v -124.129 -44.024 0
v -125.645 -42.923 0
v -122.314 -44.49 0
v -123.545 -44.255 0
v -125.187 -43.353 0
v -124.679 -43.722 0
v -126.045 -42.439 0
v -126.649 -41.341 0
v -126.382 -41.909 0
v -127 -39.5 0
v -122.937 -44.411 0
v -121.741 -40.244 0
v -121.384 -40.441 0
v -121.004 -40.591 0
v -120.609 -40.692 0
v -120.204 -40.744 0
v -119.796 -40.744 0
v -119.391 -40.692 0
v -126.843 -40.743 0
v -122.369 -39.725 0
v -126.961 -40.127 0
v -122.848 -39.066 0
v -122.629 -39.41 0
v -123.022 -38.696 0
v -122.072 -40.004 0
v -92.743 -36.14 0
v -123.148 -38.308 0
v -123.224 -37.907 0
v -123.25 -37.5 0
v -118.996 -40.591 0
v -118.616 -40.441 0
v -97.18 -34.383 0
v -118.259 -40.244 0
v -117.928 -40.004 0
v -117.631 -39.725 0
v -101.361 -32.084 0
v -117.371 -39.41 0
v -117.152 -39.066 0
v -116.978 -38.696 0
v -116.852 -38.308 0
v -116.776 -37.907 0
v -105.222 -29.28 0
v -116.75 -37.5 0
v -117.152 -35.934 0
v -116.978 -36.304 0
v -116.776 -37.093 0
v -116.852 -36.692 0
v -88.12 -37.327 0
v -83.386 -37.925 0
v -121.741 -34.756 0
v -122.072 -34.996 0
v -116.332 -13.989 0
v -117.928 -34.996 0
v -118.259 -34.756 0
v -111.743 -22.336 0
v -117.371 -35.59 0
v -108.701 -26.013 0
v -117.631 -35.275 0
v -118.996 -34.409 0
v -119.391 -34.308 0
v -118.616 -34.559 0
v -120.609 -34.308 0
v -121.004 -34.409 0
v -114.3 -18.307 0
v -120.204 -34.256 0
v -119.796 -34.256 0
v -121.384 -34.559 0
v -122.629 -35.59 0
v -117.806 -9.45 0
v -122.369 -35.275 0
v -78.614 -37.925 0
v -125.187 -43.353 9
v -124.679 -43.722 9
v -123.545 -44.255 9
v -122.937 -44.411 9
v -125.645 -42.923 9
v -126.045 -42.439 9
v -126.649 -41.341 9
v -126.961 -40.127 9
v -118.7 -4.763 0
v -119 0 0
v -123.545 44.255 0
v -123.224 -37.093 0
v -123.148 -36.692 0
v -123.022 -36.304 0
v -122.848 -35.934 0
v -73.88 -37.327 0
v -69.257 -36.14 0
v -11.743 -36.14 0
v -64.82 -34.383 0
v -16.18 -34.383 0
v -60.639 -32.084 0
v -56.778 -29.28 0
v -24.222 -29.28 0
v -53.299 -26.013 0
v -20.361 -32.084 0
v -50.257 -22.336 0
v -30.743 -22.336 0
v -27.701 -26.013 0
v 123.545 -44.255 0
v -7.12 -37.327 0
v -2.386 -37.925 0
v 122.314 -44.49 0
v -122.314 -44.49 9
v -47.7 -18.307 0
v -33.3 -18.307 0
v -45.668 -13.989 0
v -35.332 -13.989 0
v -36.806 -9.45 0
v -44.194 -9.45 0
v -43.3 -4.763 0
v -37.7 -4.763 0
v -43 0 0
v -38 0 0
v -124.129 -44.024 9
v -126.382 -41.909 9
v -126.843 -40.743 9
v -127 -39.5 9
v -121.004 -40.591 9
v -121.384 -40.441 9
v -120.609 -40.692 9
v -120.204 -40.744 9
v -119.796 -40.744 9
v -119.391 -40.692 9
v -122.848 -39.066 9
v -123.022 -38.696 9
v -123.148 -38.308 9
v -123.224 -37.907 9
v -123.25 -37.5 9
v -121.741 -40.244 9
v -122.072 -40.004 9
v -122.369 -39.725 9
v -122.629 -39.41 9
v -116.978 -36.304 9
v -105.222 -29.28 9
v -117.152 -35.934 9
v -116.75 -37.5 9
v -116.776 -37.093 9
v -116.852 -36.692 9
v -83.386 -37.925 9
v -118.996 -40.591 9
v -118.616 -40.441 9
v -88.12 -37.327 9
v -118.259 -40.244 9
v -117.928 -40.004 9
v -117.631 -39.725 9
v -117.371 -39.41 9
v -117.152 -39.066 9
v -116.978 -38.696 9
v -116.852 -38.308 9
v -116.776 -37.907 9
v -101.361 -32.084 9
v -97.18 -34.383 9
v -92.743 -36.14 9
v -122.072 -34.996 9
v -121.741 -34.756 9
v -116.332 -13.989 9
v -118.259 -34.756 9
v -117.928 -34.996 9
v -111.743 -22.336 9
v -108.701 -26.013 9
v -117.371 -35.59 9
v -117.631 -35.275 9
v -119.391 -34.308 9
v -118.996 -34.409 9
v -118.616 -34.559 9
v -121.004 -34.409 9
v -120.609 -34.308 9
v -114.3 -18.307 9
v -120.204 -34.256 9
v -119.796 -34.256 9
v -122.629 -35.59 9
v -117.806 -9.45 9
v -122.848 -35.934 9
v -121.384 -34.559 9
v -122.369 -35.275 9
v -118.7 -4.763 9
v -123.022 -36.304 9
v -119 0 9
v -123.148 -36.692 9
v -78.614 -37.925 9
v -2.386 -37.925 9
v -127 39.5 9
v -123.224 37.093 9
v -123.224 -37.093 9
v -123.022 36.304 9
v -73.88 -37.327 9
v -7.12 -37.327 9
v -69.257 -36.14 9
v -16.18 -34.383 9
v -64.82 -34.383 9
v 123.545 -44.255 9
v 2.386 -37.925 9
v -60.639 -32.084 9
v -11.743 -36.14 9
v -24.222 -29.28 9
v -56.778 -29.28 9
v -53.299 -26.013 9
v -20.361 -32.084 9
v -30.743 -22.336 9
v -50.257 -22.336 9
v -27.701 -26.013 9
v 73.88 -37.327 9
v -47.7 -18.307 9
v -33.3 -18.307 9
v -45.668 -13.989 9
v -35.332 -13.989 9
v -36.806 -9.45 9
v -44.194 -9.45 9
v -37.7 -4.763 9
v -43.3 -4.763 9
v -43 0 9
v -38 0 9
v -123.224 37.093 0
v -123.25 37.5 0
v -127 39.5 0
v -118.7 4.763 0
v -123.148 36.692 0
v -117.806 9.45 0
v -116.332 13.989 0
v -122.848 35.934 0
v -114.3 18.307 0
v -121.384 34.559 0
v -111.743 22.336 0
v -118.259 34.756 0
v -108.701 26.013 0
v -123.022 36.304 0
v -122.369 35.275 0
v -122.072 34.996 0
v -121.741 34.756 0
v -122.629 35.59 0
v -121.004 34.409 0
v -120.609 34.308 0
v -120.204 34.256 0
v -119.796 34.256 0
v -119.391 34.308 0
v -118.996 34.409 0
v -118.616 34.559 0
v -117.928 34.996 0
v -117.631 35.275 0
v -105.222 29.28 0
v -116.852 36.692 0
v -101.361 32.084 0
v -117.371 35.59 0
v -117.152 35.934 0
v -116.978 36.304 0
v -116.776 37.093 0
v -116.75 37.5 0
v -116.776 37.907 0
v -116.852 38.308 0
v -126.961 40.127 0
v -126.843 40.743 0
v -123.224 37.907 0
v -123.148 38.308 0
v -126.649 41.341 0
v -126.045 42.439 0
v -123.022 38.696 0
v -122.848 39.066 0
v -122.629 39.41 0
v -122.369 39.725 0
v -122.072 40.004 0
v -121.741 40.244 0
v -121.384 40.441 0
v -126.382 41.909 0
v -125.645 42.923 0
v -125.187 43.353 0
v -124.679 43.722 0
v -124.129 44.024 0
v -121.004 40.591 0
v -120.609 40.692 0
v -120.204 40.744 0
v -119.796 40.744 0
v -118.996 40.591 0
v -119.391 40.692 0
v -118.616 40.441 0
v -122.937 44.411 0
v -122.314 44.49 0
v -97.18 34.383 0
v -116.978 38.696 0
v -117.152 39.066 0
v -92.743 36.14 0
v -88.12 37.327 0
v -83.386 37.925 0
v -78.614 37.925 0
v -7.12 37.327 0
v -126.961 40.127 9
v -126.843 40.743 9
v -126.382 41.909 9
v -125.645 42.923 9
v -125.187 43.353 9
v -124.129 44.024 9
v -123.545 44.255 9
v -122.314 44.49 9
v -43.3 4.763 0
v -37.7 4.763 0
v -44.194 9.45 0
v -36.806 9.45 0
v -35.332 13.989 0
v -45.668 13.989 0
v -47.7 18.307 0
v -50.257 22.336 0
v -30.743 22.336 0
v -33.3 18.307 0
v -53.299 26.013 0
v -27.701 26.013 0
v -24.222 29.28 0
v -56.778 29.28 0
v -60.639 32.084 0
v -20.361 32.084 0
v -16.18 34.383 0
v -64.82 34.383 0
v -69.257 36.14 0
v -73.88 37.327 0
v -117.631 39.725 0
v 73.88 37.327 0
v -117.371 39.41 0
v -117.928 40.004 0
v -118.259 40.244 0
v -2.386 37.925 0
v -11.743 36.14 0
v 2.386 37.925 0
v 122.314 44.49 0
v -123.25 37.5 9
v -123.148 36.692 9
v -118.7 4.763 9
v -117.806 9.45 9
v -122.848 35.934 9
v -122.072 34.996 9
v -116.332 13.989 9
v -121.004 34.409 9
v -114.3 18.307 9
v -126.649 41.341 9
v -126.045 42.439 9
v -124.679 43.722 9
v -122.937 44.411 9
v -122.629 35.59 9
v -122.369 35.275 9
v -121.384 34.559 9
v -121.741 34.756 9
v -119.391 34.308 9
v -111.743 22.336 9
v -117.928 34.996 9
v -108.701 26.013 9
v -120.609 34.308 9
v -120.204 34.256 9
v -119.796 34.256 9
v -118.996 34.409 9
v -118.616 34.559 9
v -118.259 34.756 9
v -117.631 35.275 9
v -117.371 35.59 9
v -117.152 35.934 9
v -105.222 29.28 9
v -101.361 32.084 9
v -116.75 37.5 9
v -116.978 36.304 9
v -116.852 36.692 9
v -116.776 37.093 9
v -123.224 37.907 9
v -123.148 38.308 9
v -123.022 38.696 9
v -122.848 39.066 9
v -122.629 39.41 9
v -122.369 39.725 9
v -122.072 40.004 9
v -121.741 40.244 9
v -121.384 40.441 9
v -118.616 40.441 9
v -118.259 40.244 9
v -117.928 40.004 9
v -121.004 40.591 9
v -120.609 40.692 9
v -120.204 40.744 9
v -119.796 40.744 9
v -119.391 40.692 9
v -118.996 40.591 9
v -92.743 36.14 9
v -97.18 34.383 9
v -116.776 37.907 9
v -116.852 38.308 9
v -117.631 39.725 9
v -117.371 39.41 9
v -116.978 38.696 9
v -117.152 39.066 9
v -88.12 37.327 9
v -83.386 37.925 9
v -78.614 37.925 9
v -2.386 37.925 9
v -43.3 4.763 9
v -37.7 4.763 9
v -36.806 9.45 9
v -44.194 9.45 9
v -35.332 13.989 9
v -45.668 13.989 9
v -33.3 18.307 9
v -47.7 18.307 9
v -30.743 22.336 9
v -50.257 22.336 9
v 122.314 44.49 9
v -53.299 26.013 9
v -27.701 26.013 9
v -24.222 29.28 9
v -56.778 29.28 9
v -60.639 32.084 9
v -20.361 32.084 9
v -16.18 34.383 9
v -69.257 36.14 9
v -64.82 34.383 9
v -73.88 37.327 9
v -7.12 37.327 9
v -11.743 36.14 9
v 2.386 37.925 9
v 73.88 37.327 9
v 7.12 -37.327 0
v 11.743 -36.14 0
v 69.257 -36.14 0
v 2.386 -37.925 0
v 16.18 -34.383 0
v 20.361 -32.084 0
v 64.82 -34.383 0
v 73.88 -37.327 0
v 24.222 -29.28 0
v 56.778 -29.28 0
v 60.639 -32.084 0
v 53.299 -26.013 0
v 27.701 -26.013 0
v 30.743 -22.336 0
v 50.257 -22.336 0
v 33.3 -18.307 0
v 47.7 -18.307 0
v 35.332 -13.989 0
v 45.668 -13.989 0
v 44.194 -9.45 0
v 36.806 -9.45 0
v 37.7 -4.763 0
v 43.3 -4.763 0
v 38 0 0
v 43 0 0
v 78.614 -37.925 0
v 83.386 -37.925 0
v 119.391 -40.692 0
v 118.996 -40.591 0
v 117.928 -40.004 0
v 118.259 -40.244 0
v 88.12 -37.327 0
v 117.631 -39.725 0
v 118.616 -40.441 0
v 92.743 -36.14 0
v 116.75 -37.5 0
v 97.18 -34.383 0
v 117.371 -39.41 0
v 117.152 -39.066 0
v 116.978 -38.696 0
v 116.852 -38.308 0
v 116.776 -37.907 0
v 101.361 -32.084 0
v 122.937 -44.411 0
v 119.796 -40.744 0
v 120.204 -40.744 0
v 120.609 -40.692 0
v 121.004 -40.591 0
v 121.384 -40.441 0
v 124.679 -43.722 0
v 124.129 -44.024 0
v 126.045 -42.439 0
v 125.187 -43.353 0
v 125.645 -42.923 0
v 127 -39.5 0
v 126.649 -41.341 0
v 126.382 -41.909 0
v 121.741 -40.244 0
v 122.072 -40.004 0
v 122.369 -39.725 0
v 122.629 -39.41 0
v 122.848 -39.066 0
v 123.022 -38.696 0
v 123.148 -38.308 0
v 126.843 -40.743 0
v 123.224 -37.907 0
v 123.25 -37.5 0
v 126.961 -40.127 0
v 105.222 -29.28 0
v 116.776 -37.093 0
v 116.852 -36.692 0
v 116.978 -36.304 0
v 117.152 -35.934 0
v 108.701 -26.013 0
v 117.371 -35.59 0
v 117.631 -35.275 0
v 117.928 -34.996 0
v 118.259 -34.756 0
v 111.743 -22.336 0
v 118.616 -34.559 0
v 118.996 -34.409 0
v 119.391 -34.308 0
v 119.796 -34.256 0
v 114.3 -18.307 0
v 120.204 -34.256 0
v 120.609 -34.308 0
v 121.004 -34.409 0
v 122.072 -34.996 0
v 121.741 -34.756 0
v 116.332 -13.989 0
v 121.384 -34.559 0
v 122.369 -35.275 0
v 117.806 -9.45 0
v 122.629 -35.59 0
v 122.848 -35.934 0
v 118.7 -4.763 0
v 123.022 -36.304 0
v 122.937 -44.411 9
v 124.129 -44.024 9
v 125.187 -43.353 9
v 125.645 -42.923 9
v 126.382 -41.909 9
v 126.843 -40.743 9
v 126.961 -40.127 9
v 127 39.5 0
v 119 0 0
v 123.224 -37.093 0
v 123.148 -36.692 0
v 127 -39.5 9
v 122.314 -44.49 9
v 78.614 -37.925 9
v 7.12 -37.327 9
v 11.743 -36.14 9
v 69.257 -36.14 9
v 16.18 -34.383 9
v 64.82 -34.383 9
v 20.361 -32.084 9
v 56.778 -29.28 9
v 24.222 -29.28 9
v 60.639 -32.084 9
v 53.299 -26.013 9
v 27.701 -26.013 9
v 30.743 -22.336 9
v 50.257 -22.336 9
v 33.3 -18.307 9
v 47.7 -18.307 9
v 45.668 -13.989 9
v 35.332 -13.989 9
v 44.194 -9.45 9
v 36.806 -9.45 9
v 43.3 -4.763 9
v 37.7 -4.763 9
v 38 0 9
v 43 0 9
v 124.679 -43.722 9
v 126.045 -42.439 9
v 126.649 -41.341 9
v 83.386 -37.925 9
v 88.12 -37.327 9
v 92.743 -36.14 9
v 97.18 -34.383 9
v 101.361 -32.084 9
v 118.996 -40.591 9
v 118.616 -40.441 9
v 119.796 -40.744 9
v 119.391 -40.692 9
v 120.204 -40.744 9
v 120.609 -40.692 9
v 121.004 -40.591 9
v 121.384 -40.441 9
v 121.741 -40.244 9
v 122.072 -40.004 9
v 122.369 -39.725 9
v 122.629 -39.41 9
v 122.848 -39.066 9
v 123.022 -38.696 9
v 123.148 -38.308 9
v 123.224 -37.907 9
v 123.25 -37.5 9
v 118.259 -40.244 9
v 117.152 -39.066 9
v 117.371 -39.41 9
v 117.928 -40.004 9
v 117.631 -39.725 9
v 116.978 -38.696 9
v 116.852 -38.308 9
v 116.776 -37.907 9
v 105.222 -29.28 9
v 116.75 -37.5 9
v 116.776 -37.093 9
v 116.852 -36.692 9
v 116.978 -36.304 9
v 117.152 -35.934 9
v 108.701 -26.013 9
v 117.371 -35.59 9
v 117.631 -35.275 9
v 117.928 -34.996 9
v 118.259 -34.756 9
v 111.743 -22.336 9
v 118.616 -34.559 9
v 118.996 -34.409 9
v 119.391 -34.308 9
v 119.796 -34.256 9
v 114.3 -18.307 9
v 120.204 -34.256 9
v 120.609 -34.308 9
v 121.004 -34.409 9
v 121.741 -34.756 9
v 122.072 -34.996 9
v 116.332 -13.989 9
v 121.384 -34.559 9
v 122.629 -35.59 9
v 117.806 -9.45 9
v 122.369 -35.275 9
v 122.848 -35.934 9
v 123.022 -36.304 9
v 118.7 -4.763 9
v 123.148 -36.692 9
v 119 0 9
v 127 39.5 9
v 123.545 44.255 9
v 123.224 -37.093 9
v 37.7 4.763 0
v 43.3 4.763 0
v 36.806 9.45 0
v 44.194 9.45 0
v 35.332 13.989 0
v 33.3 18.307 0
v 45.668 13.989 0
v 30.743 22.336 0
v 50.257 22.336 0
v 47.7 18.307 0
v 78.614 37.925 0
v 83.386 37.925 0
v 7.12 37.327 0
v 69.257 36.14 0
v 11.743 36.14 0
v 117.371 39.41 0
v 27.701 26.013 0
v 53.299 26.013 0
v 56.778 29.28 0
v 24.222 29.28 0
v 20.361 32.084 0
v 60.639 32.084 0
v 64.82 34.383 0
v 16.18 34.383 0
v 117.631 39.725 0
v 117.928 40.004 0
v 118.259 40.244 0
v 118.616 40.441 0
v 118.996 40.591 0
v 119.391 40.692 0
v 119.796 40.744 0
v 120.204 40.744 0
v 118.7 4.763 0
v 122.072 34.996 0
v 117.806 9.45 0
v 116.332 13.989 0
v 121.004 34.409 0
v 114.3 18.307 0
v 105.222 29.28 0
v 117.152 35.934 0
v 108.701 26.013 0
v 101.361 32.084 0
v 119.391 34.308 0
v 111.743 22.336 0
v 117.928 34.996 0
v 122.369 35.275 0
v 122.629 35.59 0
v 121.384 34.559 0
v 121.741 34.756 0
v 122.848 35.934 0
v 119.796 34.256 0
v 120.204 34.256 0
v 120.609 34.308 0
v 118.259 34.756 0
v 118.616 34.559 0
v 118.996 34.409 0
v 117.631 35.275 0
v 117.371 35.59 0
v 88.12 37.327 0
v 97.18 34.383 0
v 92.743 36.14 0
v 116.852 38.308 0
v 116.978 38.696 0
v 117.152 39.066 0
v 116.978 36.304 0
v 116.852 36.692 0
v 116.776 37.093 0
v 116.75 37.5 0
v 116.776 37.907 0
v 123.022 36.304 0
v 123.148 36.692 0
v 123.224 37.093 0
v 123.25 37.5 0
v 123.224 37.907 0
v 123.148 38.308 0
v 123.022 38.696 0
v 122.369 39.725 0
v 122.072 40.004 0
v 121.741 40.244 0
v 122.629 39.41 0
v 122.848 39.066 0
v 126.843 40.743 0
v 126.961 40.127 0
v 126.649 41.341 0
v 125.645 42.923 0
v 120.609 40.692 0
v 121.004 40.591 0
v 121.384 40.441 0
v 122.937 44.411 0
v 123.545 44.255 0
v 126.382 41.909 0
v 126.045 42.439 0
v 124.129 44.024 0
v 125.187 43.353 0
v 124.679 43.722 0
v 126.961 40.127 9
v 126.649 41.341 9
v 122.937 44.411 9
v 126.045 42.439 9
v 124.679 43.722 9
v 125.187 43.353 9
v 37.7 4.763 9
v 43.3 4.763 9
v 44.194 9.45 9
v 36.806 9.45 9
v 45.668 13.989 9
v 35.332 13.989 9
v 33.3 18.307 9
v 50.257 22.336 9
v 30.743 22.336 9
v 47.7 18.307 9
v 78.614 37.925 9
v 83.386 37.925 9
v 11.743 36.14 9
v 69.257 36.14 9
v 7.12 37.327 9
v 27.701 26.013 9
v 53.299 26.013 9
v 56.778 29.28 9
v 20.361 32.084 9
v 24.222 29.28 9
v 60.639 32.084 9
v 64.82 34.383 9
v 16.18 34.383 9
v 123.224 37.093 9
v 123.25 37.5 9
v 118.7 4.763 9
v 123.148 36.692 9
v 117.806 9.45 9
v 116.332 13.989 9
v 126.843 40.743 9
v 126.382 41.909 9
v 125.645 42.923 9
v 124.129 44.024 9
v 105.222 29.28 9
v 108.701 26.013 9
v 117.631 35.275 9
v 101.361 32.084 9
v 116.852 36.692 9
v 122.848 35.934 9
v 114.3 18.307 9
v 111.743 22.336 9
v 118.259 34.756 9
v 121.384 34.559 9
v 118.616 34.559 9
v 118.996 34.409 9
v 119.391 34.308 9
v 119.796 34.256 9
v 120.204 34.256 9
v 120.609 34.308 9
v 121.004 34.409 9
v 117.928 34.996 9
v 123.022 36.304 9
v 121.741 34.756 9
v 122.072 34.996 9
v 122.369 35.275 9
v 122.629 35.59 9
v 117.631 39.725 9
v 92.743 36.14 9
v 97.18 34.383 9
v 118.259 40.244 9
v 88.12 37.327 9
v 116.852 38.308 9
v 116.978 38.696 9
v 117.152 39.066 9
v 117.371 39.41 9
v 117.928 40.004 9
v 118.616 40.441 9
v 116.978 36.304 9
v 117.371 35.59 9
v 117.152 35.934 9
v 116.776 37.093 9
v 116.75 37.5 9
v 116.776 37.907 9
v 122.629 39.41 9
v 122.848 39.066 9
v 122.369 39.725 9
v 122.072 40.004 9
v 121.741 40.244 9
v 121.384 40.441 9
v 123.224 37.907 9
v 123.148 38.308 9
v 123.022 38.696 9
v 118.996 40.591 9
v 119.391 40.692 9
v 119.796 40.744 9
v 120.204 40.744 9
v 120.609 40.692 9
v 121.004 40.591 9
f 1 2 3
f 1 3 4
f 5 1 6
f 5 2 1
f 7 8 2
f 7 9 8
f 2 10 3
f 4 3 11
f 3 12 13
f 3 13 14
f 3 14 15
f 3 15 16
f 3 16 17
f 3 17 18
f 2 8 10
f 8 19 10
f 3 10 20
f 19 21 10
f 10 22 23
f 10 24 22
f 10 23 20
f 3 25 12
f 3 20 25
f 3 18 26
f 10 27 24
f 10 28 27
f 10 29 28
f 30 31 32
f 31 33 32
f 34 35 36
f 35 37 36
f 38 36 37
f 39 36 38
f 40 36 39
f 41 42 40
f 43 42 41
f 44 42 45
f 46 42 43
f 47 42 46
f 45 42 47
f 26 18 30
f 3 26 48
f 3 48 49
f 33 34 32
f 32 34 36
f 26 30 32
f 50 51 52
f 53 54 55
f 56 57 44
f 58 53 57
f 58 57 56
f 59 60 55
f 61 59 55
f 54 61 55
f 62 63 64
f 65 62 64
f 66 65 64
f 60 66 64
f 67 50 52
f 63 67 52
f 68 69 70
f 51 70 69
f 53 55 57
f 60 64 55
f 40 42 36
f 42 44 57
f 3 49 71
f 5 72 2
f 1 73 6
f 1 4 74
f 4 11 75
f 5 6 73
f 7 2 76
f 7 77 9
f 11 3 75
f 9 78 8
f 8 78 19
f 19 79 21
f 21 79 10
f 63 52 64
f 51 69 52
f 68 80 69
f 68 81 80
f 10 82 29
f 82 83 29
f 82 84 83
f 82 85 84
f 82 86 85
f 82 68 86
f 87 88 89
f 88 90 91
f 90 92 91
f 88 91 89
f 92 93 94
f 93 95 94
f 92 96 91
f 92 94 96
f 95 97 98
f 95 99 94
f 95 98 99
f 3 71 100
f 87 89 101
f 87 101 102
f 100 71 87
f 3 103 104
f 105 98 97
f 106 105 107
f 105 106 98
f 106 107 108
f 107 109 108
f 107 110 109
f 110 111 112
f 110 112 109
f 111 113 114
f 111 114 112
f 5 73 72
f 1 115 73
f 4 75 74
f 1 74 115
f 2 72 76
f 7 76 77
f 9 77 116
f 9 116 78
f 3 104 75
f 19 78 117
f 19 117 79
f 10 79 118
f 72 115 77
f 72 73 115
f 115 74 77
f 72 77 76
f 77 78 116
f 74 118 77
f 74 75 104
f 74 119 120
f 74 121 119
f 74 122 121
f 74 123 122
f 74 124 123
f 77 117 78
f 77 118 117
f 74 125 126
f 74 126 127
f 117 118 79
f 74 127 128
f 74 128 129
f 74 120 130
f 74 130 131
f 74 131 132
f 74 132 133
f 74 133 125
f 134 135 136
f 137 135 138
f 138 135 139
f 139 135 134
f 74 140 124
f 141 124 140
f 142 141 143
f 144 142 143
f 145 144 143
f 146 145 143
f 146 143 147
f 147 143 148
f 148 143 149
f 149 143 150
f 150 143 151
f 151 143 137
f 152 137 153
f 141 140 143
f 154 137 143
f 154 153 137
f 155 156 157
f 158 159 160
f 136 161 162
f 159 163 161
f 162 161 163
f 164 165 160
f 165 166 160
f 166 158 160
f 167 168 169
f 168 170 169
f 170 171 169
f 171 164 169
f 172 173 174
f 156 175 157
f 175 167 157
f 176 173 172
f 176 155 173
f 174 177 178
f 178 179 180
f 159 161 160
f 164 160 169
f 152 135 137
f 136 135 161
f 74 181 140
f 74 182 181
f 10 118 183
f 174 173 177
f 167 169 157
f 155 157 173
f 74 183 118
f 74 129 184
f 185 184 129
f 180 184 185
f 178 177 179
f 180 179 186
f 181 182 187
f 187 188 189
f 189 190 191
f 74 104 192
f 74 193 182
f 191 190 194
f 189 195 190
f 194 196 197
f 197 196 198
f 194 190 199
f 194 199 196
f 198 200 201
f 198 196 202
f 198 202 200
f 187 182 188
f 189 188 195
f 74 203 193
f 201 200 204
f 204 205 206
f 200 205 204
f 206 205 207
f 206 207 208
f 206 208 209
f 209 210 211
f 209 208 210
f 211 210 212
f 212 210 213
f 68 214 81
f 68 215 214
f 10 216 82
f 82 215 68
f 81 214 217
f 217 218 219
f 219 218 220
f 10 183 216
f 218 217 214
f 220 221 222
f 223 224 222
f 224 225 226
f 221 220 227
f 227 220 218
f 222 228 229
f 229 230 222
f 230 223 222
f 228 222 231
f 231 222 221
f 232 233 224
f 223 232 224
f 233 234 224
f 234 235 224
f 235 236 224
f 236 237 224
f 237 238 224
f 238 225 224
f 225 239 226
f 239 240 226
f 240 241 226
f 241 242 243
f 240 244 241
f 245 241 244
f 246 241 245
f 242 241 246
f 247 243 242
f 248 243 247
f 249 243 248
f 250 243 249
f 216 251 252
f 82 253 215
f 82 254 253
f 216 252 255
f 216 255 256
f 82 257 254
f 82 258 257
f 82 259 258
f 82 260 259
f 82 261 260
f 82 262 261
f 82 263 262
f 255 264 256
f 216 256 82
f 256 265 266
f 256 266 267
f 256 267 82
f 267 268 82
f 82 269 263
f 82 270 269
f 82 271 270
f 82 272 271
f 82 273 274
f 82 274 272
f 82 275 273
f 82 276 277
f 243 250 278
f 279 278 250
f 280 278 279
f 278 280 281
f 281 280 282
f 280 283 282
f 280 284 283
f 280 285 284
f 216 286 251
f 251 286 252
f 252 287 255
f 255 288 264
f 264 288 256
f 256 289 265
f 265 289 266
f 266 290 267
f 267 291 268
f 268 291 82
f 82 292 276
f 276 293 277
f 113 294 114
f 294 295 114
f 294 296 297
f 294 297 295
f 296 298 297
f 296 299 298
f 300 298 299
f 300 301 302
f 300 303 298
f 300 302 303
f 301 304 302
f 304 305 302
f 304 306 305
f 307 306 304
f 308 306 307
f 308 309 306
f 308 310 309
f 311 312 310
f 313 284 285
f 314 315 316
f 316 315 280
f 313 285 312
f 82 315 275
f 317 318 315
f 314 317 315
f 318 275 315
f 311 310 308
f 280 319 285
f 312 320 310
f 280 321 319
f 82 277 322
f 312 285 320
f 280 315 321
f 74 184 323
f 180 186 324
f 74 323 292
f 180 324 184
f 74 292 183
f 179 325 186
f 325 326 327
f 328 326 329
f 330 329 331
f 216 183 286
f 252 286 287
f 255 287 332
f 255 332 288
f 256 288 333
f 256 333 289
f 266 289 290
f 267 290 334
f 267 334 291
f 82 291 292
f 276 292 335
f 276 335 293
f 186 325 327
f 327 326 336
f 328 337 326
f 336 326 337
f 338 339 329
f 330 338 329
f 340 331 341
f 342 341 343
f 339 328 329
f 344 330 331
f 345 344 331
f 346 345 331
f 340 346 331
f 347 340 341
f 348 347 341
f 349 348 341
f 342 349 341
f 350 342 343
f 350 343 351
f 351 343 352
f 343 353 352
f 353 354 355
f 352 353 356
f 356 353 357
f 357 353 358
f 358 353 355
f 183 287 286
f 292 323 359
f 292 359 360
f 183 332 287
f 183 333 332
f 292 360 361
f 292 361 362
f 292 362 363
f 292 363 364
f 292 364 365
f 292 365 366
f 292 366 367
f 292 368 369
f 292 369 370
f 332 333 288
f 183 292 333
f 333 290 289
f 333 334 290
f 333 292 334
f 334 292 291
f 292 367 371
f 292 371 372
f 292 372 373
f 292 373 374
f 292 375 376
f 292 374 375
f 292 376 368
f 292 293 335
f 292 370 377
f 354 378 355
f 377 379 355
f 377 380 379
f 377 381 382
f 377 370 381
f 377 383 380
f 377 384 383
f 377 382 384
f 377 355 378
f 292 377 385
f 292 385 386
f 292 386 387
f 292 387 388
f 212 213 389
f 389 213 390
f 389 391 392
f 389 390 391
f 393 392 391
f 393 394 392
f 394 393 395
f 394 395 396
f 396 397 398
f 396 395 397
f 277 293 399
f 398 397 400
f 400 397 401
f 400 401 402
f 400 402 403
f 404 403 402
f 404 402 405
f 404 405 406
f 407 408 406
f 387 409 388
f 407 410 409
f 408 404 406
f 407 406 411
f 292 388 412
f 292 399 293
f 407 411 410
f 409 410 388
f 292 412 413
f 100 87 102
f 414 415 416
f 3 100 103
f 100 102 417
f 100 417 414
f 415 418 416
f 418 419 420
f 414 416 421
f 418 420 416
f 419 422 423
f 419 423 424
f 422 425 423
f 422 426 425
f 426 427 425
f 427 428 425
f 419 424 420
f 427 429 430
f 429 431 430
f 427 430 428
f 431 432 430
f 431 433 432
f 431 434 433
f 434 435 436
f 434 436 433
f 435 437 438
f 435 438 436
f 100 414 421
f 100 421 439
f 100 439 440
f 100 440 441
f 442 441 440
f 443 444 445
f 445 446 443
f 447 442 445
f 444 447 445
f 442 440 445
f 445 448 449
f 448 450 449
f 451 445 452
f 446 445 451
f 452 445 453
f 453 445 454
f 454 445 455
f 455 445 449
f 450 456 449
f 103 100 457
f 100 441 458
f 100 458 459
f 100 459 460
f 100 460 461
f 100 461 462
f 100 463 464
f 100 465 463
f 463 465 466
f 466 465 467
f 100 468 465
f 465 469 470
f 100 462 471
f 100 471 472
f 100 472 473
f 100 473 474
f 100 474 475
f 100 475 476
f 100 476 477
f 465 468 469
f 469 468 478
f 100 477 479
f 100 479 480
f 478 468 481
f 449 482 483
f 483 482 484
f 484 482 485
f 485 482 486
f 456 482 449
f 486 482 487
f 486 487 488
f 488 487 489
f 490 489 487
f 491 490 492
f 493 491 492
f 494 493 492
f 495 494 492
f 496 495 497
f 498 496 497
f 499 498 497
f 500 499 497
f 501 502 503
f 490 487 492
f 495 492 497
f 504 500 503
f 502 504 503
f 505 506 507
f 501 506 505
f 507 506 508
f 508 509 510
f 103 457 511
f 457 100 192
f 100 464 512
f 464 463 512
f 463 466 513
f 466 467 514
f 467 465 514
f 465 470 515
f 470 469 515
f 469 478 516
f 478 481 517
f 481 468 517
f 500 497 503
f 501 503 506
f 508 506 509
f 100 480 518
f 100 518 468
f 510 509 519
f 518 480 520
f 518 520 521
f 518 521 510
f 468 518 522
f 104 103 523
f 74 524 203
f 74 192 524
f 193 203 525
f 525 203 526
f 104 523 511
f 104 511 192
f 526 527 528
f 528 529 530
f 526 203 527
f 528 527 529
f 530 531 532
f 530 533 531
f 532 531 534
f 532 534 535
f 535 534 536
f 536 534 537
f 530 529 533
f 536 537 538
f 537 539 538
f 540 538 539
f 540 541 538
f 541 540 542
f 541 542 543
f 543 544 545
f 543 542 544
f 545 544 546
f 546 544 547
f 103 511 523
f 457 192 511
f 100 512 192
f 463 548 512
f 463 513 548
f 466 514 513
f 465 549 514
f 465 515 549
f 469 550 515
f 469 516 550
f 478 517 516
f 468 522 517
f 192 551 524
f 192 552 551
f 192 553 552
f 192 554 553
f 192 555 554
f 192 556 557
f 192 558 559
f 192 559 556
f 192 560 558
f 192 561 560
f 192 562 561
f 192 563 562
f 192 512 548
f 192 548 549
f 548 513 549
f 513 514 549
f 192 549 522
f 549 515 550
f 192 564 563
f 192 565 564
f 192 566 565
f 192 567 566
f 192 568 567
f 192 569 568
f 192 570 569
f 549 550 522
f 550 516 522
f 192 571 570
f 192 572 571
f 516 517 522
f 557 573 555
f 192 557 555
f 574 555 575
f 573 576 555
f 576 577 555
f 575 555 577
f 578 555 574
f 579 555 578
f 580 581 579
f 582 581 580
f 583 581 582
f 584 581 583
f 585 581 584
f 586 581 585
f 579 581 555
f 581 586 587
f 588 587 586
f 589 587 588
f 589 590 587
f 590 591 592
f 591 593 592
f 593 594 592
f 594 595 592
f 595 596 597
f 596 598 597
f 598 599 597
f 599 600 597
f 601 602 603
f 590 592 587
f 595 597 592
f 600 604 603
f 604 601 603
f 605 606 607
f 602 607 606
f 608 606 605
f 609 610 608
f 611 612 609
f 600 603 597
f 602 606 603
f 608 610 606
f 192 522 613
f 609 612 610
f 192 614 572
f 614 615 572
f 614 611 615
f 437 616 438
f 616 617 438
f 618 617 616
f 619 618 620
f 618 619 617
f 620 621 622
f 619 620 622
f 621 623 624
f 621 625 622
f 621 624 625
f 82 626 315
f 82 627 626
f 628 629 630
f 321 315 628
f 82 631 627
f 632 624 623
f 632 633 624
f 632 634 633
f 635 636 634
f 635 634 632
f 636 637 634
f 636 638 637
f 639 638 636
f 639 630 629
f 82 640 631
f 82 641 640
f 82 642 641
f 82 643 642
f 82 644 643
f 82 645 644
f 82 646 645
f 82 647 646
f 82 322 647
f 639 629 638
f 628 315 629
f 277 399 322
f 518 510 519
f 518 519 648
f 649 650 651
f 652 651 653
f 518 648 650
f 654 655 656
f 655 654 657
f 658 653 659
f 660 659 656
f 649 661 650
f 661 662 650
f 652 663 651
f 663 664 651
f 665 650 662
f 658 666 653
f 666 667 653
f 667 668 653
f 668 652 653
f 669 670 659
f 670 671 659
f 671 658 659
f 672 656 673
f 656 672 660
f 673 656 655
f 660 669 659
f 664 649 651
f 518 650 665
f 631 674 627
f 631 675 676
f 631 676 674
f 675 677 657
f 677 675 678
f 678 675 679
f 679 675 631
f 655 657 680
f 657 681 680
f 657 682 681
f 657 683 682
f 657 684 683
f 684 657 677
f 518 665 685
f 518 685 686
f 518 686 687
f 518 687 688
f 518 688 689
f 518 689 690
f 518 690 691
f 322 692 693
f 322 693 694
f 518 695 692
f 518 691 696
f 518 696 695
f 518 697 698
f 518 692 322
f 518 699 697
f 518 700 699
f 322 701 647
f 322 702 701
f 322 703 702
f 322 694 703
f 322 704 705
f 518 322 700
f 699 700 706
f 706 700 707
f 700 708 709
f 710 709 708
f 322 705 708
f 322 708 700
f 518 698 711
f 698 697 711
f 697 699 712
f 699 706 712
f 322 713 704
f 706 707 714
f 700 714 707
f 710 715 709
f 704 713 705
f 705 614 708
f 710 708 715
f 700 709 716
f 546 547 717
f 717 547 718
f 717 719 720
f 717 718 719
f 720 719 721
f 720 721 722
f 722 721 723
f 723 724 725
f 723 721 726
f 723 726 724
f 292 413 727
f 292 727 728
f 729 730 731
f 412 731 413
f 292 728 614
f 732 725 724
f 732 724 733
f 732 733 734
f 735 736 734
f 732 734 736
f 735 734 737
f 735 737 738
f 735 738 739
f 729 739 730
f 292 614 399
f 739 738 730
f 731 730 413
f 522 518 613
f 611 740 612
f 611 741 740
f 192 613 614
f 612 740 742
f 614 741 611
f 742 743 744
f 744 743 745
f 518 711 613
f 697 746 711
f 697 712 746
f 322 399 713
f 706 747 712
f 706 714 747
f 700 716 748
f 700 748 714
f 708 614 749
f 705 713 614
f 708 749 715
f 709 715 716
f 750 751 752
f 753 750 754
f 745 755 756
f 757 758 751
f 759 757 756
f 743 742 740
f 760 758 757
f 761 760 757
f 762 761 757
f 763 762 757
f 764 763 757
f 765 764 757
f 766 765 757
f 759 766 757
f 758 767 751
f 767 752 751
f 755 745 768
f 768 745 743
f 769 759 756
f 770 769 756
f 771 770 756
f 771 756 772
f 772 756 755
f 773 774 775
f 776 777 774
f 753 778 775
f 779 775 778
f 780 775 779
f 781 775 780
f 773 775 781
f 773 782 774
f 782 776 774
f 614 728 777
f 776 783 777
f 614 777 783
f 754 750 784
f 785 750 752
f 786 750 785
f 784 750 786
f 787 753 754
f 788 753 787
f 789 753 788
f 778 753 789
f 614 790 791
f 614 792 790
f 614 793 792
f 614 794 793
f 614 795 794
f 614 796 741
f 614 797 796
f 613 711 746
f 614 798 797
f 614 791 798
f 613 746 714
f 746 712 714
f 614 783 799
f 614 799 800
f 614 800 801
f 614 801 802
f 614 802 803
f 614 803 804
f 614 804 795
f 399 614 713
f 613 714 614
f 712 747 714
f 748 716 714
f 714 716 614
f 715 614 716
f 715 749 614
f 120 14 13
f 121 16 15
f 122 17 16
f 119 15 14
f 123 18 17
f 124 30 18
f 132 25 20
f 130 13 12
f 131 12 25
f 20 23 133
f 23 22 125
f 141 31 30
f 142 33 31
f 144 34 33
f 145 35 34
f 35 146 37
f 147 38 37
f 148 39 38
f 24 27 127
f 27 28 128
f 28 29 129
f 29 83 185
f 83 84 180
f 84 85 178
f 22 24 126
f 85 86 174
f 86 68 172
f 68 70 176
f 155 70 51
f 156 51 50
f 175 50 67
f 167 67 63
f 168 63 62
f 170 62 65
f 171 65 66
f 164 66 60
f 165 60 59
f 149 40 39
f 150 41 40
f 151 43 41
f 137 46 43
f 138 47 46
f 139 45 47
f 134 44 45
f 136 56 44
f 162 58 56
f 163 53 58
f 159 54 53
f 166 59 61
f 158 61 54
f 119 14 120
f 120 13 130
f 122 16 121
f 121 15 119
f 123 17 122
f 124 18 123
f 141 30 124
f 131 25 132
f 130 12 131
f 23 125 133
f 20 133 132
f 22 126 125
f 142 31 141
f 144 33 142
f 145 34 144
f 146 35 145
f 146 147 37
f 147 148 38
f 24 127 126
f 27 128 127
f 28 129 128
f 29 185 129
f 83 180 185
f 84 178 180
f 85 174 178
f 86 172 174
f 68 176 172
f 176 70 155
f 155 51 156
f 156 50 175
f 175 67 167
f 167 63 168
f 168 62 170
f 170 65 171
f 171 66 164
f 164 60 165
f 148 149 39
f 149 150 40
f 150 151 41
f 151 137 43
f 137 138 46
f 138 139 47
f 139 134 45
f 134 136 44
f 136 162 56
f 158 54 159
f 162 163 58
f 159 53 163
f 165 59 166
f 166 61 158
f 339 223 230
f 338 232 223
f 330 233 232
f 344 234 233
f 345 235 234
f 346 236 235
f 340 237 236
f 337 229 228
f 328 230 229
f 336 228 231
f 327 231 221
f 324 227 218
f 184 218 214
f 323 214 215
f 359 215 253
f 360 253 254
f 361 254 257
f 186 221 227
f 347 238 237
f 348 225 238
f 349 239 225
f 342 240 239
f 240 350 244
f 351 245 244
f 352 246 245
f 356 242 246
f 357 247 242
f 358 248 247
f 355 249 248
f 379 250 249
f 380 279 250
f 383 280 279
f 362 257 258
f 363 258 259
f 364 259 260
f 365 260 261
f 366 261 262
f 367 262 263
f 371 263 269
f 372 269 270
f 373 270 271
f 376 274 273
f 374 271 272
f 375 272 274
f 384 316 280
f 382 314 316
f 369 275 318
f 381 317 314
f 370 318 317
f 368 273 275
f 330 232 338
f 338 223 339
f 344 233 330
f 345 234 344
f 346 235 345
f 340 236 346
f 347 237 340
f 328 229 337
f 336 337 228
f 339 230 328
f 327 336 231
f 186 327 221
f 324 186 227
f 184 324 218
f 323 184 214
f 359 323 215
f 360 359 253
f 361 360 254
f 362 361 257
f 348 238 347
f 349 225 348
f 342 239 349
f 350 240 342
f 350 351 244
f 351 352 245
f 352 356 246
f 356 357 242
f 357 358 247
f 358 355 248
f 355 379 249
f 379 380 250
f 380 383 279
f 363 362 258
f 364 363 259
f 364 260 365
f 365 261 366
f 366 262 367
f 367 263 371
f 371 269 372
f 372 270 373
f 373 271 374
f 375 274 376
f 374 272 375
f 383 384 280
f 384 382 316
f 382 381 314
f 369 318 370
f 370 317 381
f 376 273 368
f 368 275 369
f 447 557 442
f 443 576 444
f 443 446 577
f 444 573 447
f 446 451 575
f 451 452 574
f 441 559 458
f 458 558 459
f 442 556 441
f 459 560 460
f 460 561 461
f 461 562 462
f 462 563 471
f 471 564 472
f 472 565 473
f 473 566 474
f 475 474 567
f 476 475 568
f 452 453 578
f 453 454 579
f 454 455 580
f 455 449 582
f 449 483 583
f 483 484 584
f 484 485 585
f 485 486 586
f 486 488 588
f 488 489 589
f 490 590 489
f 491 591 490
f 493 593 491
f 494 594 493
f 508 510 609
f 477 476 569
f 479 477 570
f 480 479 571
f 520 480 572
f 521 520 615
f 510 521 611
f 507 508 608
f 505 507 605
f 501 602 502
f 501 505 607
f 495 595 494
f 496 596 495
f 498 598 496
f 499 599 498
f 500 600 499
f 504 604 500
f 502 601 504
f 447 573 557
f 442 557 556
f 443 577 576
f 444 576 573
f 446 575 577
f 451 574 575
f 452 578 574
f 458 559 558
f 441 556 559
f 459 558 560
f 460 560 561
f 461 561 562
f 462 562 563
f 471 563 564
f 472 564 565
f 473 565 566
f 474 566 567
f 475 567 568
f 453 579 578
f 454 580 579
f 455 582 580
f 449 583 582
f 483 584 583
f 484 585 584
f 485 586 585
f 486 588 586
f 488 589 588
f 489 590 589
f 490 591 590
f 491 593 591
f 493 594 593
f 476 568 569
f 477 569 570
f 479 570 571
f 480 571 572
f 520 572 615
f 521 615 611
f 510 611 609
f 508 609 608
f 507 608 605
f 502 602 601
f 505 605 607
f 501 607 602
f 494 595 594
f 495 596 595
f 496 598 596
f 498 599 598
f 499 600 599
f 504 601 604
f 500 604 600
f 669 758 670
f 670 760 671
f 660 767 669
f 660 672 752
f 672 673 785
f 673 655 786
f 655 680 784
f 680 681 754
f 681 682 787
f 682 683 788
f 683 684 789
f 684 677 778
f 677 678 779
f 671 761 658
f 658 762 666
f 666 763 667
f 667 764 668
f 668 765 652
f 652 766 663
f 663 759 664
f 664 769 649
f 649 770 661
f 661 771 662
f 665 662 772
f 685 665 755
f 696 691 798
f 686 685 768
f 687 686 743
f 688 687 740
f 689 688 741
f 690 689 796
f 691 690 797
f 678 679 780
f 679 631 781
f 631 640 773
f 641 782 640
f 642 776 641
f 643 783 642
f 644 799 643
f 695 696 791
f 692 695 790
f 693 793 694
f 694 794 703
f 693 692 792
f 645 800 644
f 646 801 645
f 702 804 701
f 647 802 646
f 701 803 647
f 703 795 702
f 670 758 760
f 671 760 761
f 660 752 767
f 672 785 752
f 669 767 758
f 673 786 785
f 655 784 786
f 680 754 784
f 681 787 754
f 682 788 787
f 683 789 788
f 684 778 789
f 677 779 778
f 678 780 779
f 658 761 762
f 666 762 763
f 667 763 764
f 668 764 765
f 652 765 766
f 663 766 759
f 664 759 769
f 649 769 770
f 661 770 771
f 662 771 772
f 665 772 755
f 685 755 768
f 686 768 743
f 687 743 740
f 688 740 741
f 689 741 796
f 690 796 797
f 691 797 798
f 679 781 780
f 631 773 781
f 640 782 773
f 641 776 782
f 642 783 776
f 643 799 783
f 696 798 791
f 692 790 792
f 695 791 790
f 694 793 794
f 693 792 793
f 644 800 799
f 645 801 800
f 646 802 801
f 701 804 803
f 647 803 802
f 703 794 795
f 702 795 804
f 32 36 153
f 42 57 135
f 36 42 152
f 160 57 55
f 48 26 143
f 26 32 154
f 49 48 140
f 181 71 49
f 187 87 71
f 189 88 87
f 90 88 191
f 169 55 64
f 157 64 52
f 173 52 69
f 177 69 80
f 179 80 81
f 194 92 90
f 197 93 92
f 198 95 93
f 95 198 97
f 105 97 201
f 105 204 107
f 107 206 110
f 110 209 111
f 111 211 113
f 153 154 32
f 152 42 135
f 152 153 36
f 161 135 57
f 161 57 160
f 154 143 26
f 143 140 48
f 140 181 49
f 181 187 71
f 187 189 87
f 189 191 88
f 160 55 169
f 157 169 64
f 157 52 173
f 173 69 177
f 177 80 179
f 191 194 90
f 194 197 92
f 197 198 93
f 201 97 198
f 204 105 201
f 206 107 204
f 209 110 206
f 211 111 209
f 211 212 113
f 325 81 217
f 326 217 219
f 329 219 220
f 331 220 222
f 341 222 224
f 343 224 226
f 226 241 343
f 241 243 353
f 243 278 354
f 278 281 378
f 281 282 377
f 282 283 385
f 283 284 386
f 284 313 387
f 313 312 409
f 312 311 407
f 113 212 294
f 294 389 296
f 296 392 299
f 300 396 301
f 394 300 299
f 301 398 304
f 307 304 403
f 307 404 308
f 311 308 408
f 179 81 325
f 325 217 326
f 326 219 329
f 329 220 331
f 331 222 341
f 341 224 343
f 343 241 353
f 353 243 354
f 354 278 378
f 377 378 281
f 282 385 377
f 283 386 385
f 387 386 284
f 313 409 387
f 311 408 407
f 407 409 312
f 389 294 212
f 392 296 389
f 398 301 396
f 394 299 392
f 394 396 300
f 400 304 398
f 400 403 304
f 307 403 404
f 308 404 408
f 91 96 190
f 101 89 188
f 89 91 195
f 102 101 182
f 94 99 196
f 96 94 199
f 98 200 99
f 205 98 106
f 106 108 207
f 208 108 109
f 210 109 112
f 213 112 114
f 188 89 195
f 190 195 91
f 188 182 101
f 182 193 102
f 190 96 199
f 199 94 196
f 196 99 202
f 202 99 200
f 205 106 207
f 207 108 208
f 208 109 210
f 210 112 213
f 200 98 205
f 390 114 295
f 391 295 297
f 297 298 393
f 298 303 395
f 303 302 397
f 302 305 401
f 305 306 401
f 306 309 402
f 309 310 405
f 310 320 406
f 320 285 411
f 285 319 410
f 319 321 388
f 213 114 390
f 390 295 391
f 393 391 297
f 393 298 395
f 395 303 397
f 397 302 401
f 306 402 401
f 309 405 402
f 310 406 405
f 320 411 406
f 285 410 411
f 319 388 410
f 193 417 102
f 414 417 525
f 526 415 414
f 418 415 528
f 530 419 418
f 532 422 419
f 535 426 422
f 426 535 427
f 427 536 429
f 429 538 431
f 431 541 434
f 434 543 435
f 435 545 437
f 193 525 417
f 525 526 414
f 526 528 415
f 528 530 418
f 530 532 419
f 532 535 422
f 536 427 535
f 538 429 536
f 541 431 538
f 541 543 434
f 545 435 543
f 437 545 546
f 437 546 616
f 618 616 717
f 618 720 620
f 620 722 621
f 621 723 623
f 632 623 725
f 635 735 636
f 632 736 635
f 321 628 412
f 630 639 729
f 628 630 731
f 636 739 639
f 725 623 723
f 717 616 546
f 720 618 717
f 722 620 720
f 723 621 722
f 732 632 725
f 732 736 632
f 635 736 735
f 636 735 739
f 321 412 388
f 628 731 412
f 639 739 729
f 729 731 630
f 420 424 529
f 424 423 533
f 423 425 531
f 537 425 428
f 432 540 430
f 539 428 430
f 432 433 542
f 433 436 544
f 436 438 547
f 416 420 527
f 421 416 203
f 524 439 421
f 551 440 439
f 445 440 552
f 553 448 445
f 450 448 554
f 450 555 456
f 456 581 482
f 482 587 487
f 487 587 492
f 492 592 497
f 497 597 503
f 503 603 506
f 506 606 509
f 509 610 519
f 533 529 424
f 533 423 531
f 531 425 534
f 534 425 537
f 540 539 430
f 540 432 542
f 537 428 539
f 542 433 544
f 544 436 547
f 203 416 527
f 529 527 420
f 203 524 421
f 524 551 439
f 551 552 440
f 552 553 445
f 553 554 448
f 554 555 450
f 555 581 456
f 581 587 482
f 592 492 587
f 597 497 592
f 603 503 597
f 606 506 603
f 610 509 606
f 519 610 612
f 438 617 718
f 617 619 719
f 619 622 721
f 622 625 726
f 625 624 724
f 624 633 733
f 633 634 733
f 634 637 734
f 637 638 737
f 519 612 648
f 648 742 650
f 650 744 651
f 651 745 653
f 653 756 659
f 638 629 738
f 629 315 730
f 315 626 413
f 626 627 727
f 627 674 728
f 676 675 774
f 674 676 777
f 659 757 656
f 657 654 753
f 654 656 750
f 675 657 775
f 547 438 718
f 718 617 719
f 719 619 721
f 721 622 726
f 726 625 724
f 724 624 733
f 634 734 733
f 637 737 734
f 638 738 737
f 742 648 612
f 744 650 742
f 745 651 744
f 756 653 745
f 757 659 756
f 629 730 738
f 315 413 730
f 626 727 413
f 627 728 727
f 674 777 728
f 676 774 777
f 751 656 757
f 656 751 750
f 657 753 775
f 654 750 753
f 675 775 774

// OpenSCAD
$fn = 50;

difference() {
	union() {
		hull() {
			translate(v = [-122.0, 39.5, 0]) {
				cylinder(h = 9, r = 5);
			}
			translate(v = [122.0, 39.5, 0]) {
				cylinder(h = 9, r = 5);
			}
			translate(v = [-122.0, -39.5, 0]) {
				cylinder(h = 9, r = 5);
			}
			translate(v = [122.0, -39.5, 0]) {
				cylinder(h = 9, r = 5);
			}
		}
	}
	union() {
		translate(v = [-120.0, -37.5, -100.0]) {
			cylinder(h = 200, r = 3.25);
		}
		translate(v = [-120.0, 37.5, -100.0]) {
			cylinder(h = 200, r = 3.25);
		}
		translate(v = [120.0, -37.5, -100.0]) {
			cylinder(h = 200, r = 3.25);
		}
		translate(v = [120.0, 37.5, -100.0]) {
			cylinder(h = 200, r = 3.25);
		}
		translate(v = [-120.0, -37.5, -100.0]) {
			cylinder(h = 200, r = 1.8);
		}
		translate(v = [-120.0, 37.5, -100.0]) {
			cylinder(h = 200, r = 1.8);
		}
		translate(v = [120.0, -37.5, -100.0]) {
			cylinder(h = 200, r = 1.8);
		}
		translate(v = [120.0, 37.5, -100.0]) {
			cylinder(h = 200, r = 1.8);
		}
		translate(v = [-81.0, 0, 0.0]) {
			cylinder(h = 9, r = 38.0);
		}
		cylinder(h = 9, r = 38.0);
		translate(v = [81.0, 0, 0.0]) {
			cylinder(h = 9, r = 38.0);
		}
	}
}
